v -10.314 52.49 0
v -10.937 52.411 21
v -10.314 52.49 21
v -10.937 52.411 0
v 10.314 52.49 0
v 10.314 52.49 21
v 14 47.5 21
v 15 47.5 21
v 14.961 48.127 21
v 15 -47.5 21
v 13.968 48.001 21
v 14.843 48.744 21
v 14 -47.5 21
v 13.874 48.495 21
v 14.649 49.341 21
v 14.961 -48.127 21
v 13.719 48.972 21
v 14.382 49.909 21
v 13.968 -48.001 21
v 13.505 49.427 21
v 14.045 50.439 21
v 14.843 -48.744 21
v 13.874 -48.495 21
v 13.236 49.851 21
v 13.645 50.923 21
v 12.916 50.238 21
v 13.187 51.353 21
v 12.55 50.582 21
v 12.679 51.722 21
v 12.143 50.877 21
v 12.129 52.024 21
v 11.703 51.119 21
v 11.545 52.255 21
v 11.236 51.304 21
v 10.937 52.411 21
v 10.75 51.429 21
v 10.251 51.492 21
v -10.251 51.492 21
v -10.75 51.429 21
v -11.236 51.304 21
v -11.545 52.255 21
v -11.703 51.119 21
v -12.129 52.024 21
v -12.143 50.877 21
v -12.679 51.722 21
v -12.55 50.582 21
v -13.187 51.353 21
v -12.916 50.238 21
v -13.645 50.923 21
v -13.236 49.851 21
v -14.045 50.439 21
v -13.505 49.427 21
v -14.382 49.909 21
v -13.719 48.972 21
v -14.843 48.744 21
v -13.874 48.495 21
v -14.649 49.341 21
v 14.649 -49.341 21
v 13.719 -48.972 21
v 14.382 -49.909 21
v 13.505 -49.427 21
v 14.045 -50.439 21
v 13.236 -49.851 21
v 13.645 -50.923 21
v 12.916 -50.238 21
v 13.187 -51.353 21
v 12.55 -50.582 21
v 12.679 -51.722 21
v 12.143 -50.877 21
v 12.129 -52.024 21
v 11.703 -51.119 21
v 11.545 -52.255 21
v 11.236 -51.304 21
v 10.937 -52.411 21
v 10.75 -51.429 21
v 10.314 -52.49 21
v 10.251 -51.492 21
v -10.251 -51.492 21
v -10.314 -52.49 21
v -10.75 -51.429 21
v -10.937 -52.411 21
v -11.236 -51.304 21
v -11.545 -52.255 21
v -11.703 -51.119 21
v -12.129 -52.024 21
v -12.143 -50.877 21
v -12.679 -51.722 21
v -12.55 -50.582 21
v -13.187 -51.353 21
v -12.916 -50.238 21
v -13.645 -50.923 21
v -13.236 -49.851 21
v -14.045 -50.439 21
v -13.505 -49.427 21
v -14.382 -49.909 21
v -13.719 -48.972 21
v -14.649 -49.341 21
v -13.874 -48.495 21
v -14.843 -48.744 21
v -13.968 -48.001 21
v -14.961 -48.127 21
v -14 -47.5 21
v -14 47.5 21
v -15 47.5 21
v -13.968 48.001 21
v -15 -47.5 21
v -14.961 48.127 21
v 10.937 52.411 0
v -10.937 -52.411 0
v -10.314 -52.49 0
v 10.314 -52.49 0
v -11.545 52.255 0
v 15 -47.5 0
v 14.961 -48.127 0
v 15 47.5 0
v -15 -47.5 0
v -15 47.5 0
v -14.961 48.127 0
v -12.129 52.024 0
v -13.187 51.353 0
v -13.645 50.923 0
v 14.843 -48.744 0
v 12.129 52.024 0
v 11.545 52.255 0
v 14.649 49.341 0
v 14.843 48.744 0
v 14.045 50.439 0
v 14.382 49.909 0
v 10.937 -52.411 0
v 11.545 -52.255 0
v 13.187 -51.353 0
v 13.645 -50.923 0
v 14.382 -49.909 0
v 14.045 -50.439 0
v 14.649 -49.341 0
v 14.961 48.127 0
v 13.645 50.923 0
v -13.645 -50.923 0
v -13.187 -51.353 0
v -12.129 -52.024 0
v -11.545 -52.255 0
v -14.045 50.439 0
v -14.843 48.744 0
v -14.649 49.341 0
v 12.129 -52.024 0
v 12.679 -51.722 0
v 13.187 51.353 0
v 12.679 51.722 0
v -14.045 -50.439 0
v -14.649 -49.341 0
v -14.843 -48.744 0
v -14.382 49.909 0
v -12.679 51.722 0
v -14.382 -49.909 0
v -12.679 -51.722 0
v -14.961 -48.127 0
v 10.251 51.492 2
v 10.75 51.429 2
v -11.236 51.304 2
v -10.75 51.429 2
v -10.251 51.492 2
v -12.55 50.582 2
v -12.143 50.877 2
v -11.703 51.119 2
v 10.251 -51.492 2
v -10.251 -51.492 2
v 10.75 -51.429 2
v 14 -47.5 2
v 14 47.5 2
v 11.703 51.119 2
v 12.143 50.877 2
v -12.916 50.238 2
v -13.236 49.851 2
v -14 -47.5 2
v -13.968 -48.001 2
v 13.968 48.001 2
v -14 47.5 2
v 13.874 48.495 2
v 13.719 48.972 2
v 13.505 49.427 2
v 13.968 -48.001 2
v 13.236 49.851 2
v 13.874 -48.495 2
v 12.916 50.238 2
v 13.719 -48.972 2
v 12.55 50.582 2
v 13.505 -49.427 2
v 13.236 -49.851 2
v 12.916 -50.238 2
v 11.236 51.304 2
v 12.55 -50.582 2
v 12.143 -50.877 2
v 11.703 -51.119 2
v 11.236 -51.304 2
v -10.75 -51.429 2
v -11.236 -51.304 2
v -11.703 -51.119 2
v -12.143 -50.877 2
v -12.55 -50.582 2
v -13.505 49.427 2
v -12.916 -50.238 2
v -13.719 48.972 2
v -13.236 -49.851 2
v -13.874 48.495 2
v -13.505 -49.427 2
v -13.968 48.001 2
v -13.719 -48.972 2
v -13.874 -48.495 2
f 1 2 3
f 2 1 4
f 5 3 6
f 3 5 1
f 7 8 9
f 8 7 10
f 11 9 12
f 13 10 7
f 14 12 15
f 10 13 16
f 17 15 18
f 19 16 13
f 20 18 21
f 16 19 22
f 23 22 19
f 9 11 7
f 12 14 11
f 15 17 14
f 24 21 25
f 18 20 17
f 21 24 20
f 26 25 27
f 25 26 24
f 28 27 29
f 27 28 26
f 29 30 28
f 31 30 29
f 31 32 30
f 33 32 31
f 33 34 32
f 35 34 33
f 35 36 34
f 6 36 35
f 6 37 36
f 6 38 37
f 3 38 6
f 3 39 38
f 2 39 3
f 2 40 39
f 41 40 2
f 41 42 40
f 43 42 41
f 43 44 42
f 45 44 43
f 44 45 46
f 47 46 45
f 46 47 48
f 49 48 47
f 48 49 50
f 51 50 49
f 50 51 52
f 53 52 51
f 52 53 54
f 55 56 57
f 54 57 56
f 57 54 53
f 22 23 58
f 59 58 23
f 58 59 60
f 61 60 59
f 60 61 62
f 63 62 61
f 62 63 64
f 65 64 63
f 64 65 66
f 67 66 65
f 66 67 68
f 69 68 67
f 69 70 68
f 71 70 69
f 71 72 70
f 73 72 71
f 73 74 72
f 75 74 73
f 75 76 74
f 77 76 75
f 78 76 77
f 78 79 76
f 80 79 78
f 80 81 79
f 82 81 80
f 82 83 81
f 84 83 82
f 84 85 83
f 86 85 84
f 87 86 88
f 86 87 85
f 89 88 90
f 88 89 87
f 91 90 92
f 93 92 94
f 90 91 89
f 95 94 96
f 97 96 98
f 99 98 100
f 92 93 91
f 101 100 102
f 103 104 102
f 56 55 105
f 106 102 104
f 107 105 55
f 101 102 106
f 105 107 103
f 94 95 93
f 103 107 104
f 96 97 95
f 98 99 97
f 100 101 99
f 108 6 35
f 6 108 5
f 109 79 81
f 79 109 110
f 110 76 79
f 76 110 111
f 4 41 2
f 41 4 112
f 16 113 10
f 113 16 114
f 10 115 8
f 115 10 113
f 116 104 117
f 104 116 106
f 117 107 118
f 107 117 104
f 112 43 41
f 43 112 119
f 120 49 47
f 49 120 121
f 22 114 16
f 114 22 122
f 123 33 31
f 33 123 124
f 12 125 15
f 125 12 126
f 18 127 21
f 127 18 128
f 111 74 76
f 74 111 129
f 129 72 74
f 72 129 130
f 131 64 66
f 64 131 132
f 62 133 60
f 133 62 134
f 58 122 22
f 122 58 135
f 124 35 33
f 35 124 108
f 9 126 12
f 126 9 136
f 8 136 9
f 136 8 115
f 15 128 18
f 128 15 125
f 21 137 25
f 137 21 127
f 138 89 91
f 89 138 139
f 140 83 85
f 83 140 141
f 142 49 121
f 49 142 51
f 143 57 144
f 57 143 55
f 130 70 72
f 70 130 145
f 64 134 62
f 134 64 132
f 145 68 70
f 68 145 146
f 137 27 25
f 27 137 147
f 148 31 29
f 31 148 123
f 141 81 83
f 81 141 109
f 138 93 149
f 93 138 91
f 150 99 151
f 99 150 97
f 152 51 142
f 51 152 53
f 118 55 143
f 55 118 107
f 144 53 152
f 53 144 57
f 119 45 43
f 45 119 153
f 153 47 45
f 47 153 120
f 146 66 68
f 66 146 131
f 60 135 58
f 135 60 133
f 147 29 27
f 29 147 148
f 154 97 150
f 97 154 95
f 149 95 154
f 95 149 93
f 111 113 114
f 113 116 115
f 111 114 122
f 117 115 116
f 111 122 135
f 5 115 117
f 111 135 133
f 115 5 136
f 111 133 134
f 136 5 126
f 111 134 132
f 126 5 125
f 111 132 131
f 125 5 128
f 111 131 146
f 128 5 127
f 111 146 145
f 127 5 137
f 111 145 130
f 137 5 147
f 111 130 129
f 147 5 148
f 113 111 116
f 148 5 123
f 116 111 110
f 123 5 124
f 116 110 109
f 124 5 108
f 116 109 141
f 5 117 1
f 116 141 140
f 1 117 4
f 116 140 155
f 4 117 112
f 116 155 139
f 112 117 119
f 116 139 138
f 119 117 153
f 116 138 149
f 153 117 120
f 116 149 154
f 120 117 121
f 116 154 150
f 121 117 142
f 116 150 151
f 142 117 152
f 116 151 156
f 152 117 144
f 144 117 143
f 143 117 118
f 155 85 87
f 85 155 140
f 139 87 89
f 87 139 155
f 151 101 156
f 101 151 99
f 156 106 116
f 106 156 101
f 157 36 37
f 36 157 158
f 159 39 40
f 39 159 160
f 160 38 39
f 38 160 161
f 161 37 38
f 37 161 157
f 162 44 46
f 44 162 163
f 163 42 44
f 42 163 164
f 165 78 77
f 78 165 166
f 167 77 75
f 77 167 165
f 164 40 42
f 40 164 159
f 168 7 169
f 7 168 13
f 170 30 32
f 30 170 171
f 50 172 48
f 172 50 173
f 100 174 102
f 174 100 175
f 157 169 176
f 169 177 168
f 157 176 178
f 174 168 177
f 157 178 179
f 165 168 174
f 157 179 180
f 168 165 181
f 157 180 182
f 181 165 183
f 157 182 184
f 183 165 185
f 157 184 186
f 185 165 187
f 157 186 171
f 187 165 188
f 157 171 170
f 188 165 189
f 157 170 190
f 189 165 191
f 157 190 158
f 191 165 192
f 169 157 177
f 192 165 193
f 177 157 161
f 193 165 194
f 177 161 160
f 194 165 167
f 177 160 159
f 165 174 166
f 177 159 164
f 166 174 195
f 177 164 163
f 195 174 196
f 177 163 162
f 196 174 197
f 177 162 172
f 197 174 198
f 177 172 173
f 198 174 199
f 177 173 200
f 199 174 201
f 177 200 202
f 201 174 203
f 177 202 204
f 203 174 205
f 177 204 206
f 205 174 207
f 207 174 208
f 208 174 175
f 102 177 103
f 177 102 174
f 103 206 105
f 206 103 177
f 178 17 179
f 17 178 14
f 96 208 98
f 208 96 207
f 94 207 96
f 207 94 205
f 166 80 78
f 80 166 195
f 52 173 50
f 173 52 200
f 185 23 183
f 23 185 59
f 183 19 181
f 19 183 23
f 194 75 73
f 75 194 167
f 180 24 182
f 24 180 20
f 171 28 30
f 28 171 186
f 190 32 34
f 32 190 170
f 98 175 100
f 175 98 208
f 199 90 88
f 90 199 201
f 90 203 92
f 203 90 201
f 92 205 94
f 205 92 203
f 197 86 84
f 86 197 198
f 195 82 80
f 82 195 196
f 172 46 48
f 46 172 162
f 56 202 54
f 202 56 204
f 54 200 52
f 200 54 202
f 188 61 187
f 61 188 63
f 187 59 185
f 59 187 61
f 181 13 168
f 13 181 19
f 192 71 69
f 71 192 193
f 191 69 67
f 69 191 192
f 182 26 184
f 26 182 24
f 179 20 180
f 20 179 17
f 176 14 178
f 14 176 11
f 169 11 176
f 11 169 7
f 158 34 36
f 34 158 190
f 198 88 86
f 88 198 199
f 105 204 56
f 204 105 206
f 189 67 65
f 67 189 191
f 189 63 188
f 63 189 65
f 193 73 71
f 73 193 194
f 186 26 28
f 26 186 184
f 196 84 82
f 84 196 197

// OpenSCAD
$fn = 50;


difference() {
	union() {
		hull() {
			translate(v = [-10.0000000000, 47.5000000000, 0]) {
				cylinder(h = 21, r = 5);
			}
			translate(v = [10.0000000000, 47.5000000000, 0]) {
				cylinder(h = 21, r = 5);
			}
			translate(v = [-10.0000000000, -47.5000000000, 0]) {
				cylinder(h = 21, r = 5);
			}
			translate(v = [10.0000000000, -47.5000000000, 0]) {
				cylinder(h = 21, r = 5);
			}
		}
	}
	union() {
		translate(v = [0, 0, 2]) {
			hull() {
				translate(v = [-10.0000000000, 47.5000000000, 0]) {
					cylinder(h = 19, r = 4);
				}
				translate(v = [10.0000000000, 47.5000000000, 0]) {
					cylinder(h = 19, r = 4);
				}
				translate(v = [-10.0000000000, -47.5000000000, 0]) {
					cylinder(h = 19, r = 4);
				}
				translate(v = [10.0000000000, -47.5000000000, 0]) {
					cylinder(h = 19, r = 4);
				}
			}
		}
	}
}
